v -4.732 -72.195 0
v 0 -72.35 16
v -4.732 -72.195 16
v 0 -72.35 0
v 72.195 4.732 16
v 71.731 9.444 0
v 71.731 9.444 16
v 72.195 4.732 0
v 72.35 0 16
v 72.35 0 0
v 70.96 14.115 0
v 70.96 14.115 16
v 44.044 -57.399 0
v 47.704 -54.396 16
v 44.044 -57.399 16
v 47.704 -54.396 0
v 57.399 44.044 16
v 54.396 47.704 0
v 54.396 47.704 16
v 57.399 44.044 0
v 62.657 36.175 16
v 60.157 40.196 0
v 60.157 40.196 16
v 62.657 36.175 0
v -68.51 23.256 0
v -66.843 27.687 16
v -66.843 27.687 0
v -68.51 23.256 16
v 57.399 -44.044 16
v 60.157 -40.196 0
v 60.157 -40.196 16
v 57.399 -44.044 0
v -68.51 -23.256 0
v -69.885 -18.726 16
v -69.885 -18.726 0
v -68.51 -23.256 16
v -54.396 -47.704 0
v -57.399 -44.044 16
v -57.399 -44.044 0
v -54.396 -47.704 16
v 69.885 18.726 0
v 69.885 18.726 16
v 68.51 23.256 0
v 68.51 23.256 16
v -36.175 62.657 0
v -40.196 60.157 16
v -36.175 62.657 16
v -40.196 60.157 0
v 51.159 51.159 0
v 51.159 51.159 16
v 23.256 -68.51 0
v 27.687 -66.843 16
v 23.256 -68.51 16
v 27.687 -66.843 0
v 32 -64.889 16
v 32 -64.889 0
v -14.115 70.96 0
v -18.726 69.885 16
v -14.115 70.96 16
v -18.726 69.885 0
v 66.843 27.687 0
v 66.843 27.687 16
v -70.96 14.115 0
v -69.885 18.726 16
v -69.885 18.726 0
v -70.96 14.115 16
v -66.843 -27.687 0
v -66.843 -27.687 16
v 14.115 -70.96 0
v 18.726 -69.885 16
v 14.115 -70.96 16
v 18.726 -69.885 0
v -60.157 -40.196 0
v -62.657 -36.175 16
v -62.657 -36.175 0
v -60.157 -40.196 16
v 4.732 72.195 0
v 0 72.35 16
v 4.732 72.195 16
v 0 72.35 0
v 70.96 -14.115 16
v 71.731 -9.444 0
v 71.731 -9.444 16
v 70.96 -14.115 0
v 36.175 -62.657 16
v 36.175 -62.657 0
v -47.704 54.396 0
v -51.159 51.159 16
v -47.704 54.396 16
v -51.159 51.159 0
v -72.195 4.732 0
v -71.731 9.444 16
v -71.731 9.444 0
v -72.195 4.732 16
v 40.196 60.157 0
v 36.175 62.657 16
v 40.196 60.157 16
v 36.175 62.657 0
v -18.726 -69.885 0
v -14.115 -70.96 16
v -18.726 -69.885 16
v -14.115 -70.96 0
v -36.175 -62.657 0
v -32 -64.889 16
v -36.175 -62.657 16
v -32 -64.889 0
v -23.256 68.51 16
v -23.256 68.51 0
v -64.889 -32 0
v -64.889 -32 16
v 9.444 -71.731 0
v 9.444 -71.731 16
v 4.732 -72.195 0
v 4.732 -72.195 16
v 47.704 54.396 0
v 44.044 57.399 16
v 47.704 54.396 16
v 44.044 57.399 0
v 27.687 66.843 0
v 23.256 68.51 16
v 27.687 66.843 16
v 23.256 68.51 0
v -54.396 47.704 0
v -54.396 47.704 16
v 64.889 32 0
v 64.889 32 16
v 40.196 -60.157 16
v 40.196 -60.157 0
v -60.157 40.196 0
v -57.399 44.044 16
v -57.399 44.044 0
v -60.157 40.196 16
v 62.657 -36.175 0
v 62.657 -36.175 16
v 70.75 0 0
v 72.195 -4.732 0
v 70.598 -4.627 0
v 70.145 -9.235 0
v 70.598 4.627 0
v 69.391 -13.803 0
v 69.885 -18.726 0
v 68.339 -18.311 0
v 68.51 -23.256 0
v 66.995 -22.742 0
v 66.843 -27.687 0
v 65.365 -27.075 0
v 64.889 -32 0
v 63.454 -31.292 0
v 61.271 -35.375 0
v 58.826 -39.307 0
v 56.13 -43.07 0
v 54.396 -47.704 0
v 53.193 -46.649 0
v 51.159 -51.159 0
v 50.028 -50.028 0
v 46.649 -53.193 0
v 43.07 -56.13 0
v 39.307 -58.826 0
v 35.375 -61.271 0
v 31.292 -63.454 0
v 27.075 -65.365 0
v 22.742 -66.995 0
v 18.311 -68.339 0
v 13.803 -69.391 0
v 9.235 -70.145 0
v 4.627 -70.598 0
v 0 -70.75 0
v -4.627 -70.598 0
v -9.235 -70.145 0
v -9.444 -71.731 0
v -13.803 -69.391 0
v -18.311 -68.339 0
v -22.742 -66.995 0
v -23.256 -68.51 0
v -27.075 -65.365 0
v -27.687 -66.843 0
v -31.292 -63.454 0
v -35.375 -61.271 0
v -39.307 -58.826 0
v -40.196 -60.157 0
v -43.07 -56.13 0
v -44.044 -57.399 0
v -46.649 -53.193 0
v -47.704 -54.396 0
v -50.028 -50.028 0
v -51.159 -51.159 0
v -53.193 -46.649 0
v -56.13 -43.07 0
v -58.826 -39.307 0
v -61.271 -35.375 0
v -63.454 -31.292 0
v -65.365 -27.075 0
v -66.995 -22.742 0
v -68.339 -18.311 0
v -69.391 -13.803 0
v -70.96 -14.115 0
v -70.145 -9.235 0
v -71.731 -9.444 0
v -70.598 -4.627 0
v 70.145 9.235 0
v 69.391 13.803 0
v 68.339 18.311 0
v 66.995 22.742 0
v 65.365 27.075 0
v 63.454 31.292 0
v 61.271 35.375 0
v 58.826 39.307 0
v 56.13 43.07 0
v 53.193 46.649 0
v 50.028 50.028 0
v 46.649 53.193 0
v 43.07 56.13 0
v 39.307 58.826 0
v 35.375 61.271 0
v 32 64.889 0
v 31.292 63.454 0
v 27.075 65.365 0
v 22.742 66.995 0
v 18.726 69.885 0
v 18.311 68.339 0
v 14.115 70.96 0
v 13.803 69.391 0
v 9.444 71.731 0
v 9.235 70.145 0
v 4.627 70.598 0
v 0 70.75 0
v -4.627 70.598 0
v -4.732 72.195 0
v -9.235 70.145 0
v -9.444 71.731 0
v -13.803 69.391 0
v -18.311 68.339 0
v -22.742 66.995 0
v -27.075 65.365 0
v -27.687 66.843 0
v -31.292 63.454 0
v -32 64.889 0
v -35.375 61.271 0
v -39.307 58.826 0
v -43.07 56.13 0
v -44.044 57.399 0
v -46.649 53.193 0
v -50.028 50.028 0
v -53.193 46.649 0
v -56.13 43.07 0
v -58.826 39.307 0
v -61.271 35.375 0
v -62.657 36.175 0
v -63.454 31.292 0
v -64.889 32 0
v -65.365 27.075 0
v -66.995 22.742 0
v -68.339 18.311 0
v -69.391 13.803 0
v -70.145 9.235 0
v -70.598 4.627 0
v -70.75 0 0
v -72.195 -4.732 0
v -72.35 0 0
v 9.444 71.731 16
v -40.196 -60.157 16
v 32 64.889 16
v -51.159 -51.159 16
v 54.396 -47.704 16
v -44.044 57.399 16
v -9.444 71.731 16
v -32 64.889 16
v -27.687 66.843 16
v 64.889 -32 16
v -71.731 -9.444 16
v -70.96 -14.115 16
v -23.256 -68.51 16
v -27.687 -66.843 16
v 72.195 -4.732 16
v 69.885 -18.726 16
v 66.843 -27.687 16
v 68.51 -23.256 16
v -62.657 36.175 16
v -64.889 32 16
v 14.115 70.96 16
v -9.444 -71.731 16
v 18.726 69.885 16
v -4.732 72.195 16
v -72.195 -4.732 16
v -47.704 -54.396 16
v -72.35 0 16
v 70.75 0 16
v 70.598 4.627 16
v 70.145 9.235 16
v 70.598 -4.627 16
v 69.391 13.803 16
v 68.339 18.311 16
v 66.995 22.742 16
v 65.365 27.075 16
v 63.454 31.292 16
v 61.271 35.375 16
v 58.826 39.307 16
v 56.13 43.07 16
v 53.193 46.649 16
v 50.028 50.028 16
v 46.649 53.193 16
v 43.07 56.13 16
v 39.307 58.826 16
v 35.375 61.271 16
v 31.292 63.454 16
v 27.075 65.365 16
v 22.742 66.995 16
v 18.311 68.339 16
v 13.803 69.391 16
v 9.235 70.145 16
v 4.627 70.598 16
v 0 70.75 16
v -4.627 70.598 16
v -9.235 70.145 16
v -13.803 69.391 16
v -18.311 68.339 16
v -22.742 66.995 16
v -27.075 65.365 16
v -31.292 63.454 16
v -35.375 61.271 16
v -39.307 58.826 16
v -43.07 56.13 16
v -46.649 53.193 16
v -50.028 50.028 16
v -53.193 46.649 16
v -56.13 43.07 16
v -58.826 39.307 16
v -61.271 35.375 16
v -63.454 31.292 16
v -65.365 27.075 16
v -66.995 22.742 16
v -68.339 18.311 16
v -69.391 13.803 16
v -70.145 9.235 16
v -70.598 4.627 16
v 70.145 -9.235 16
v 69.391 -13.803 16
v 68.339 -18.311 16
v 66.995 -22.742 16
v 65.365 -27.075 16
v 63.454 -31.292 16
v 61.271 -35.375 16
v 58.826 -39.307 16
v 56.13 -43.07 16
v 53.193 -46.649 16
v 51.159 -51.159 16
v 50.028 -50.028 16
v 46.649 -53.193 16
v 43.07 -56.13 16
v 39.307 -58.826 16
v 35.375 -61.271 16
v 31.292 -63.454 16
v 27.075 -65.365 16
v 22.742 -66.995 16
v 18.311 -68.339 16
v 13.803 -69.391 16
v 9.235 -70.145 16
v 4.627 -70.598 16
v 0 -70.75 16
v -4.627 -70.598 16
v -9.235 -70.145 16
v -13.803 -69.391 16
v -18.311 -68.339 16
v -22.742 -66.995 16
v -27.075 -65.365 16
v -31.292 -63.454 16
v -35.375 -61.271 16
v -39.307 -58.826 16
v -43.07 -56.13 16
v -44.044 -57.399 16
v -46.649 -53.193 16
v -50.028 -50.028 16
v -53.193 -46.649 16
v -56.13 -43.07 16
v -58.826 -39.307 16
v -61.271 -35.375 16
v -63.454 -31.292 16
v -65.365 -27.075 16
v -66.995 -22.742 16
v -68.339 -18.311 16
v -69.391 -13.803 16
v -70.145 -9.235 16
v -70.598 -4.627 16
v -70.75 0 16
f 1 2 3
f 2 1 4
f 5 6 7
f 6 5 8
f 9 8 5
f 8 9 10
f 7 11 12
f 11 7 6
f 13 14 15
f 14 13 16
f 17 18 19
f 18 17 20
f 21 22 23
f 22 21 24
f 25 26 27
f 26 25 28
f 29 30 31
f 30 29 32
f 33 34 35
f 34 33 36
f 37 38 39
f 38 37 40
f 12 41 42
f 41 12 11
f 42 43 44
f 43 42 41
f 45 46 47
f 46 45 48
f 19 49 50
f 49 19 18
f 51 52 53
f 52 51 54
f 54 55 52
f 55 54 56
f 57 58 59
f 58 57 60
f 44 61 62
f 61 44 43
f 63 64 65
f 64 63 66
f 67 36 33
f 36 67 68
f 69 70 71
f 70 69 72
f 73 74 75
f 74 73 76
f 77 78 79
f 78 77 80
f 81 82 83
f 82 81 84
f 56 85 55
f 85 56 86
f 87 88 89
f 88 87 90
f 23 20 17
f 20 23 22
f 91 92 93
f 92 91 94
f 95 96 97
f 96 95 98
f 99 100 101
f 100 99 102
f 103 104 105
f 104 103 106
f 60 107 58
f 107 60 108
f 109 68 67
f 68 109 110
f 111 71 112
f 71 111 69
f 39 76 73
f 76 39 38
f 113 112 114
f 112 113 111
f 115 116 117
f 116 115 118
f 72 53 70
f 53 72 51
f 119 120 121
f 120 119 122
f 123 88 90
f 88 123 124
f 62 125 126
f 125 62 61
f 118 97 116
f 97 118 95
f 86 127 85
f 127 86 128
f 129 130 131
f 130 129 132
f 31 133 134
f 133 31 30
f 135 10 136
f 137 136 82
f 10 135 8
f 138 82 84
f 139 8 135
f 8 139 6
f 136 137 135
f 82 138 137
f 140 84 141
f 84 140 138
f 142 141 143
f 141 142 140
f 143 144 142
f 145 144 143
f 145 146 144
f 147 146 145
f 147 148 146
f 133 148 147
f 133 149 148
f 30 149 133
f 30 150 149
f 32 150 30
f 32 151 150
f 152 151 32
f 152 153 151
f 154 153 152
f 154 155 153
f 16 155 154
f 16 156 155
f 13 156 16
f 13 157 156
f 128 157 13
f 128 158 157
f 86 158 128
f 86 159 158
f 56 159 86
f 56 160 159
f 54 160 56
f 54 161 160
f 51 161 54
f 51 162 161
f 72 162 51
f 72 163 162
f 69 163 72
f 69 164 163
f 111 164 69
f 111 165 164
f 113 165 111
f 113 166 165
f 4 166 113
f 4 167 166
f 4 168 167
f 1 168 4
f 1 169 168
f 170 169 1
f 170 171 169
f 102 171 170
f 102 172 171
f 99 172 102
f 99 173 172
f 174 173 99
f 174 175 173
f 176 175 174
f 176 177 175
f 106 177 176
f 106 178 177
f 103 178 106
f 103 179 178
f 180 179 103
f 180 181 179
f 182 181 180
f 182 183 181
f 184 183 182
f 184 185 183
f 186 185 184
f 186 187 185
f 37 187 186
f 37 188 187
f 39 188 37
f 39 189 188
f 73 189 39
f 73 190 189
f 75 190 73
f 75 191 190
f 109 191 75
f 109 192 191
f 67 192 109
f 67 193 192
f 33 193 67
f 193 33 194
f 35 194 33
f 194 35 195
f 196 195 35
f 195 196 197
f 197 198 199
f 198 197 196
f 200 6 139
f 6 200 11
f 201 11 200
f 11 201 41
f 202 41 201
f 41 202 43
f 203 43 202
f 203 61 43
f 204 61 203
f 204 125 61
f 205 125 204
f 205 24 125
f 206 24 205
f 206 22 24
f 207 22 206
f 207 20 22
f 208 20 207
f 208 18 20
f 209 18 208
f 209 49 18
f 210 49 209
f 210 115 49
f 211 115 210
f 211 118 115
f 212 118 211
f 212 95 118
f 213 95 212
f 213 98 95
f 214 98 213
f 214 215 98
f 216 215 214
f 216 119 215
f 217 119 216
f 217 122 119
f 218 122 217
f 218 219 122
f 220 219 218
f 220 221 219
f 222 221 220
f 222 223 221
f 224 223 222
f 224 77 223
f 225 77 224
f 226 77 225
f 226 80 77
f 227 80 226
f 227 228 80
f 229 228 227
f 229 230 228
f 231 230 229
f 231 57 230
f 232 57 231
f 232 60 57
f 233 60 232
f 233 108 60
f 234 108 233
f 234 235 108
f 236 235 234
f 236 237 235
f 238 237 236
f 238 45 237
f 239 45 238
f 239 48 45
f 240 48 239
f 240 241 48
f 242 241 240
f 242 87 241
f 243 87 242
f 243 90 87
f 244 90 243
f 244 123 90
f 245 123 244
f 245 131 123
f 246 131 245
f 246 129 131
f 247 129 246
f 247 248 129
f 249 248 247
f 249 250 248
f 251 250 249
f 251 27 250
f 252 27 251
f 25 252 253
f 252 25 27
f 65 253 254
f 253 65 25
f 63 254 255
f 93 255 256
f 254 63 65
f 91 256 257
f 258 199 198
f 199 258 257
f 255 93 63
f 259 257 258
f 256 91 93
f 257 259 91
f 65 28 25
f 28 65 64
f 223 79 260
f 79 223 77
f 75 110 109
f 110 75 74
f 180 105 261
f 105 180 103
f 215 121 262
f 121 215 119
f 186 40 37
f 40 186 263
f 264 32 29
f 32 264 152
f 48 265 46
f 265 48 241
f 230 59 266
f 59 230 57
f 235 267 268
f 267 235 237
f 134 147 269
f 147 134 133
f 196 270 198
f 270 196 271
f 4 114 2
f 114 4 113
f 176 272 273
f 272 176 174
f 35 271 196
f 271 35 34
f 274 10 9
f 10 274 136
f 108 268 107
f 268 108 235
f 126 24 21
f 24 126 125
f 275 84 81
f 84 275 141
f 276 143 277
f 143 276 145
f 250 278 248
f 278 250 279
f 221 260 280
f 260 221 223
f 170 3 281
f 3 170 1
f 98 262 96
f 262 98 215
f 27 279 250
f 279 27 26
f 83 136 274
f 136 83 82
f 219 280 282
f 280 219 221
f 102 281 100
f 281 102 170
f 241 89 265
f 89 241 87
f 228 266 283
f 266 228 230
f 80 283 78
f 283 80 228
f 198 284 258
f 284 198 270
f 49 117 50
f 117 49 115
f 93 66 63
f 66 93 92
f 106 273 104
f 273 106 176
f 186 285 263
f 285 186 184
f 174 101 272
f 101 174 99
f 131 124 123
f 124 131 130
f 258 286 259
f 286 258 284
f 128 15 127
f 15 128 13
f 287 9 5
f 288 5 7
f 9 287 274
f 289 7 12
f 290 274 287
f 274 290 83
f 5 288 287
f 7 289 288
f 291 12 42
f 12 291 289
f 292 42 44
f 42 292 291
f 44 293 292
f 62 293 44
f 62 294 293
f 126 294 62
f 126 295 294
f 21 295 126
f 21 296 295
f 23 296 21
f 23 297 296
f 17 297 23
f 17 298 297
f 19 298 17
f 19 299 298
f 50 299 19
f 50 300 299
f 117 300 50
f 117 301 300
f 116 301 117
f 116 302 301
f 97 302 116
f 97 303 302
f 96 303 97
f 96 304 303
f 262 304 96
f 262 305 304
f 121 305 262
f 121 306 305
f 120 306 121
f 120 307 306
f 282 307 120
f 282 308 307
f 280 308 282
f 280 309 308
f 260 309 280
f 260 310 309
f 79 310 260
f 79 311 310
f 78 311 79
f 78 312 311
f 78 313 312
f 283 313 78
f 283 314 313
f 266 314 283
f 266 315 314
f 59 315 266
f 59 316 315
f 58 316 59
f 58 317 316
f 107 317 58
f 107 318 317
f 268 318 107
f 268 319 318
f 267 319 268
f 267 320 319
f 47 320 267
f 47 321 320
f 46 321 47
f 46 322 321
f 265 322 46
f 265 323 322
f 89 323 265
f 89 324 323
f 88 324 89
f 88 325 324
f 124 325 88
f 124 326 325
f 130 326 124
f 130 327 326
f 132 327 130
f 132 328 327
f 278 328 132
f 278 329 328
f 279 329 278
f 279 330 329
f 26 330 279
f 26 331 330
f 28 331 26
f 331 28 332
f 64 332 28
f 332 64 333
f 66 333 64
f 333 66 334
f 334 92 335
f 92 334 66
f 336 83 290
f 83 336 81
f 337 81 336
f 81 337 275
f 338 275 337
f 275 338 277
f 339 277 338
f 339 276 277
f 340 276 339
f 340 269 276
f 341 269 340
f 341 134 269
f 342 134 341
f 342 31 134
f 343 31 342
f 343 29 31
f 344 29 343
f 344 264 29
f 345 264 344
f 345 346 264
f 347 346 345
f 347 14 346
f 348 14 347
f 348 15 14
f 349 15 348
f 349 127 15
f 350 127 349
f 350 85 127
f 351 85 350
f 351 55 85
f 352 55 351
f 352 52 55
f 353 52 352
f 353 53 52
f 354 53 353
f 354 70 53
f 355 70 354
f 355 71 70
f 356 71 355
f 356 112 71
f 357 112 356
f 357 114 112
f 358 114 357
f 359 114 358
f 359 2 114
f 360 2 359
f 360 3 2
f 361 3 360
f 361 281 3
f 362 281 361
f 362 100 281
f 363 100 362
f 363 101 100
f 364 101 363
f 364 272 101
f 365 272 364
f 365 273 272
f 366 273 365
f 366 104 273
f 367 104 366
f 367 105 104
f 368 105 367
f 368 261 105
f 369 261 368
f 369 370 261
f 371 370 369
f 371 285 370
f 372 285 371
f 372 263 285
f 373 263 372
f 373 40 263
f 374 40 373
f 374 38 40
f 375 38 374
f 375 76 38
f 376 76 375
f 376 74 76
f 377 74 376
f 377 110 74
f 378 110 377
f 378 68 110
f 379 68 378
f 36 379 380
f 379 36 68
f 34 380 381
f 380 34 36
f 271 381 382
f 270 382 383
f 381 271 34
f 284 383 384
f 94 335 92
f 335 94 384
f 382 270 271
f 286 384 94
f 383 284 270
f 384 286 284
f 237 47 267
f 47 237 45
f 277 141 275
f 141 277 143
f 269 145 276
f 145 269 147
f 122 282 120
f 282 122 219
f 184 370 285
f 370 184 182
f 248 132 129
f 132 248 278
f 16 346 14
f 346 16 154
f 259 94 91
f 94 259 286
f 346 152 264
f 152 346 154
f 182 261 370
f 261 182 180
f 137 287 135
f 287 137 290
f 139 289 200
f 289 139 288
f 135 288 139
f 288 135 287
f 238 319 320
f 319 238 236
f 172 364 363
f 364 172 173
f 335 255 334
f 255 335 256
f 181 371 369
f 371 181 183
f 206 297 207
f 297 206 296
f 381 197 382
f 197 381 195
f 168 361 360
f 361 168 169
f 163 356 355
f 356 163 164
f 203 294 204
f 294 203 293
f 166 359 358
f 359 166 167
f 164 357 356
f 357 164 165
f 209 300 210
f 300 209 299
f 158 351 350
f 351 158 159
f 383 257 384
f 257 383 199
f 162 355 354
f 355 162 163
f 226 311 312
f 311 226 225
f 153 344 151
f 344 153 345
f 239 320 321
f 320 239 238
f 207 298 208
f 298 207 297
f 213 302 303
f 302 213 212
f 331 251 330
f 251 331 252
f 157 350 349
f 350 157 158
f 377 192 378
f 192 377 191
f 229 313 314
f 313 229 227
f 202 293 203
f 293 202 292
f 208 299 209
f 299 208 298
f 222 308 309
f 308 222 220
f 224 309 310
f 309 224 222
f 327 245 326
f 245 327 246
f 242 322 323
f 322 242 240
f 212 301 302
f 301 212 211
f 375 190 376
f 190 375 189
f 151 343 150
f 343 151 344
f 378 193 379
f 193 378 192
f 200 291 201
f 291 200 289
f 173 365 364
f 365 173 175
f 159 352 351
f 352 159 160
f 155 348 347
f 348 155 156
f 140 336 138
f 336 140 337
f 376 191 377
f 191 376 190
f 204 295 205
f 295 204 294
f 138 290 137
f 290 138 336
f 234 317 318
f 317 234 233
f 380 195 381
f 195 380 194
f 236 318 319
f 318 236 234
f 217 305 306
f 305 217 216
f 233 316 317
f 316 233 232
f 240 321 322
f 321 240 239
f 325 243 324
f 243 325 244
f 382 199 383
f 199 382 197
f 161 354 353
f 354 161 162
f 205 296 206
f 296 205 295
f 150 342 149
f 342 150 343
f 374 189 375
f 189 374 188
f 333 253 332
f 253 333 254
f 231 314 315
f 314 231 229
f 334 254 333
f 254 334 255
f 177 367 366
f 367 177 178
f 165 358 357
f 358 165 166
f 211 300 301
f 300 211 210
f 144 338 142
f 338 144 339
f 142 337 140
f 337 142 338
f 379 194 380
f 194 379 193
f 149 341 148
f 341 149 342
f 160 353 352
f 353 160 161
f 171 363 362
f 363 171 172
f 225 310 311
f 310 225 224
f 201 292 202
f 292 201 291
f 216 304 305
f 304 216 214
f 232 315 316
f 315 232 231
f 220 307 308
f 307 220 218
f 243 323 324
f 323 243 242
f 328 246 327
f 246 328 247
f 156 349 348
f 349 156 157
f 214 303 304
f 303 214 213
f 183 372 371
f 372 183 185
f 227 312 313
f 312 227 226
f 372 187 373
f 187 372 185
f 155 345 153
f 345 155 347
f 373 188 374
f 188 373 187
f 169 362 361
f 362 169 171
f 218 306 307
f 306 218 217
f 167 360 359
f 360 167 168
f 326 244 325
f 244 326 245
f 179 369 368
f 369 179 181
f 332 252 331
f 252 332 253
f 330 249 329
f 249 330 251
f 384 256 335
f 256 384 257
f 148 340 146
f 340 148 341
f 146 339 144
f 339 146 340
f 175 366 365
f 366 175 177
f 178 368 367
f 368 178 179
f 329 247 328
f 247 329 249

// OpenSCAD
// file: layout.scad
// GENERATED by cad/fit.py from cad/ordered_parts.toml and config.scad.
// Do not edit: change those and run  python3 cad/fit.py  (from sport_cam/).

base_d = 141;
base_h = 84;
window_z = 36.5;
shelf_z = 48.5;
shelf_r = 66.75;
gap_ang = 300;
gap_d = 22;
post_r = 63.5;
post_angs = [15, 100, 225];
window_ribs = [15, 35, 55, 75, 95, 115, 135, 155, 175, 195, 215, 235, 255, 275, 295, 315, 335, 355];
pi_holes = [[-36.525, -40.718], [13.704, -11.718], [-61.025, 1.718], [-10.796, 30.718]];
pi_hole_d = 2.9;
usbc_ang = 150;
usbc_z = 8.35;
usbc_w = 13.5;
usbc_h = 8;
jack_ang = 210;
jack_z = 9.5;
jack_d = 8.2;
switch_ang = 120;
switch_z = 11.5;
switch_cut_w = 19.2;
switch_cut_h = 13.2;
switch_panel_t = 2;
vents_low = [5, 25, 45, 65, 245, 305, 325, 345];
vent_low_z = 9;
vents_high = [5, 65, 85, 105, 165, 185, 205, 245, 265, 285, 345];
vent_high_z = 64.75;
lid_screw_angs = [45, 135, 225, 315];
lid_screw_z = 81;
lid_nut_recess = 0.7;
ptz_nut_af = 5.5;
ptz_slot_min = 30;
ptz_slot_max = 72;
risers = [];
insert_od = 12.7;
insert_l = 8;
bank_l = 150;
bank_w = 72;
bank_h = 30;
uwb_l = 40;
uwb_w = 25;
uwb_hole_dx = 32;
uwb_hole_dy = 17;
ula1_tangential = true;
mast_d = 12.7;
pod_inner_l = 138;
pod_inner_w = 27;
pod_inner_h = 25;
pod_ula1_x0 = 98;
pod_charge_slot = true;
usb_entry_ang = 25;
usb_entry_z = 71;
usb_entry_w = 18;
usb_entry_h = 10;
// file: config.scad
// SportCam — parametric dimensions (mm). Every part file includes this.
//
// Three kinds of number feed the CAD:
//   * design choices — wall thickness, clearances, the anchor baseline — set below;
//   * the sizes of the parts you buy — in ../../cad/ordered_parts.toml;
//   * the layout — where each board sits, which way the Pi faces, how big
//     the enclosure is — which ../../cad/fit.py solves from the other two
//     and writes to layout.scad (included half-way down).
// After changing either file run   python3 cad/fit.py   from sport_cam/.
// It re-solves the layout, re-renders the STLs and audits that every part
// fits together and prints on a Bambu Lab A1 Mini (cad/FIT_REPORT.md).
//
// Keep the numbers above the include plain numbers (fit.py reads them);
// anything worked out from the layout goes below it.
//
// This is the **PTZ-base build**: the camera, pan and tilt all come from the
// Arducam IMX477 PTZ camera with metal pan-tilt base (B0167B12), which bolts
// to the lid of a static enclosure — see docs/design/03-mechanical-design.md.

$fn = 96;
clr = 0.25;                    // general printed-fit clearance per side

// ---- enclosure -------------------------------------------------------------
// Bottom to top: the power boards stuck to the floor; the LED ring under a
// printed shelf, shining out through the LED window; the Raspberry Pi on the
// shelf; the lid with the camera. Every part must print in one piece on a
// Bambu Lab A1 Mini (≤ 170 mm on every axis); fit.py keeps it that way.
base_d_min    = 135;           // narrowest enclosure (outer Ø); fit.py widens it only if the parts need it
base_h_min    = 66;            // lowest floor-to-lid height; fit.py raises it to clear the stack
base_wall     = 3;
lid_t         = 5;             // lid is structural: it carries the whole camera
spigot_h      = 6;             // locating ring under the lid that drops into the mouth
spigot_w      = 3;
lid_screw_pad = 7;             // the ring is thickened here for the four radial M3 inserts
lid_screw_d   = 3.4;
led_window_h  = 12;            // circumferential window the LED ring lights
window_bridge = 22;            // longest unsupported span over the window; ribs every this far
window_rib_w  = 3;
diffuser_t    = 1.6;           // translucent band slid over the outside of the window
diffuser_lip  = 2;             // how far it overlaps the wall above and below
ledge_h       = 2;             // the band rests on this outside ledge

tripod_boss_d = 24;            // floor boss for the 3/8-16 insert (bore from ordered_parts.toml)
tripod_boss_h = 8;

tape_t        = 1;             // foam tape under the power boards and the LED ring
part_gap      = 2;             // clearance fit.py keeps between parts
wall_gap      = 1;             // and between a part and the wall
shelf_t       = 3;             // the Pi shelf
post_d        = 10;            // shelf posts, merged into the wall; M3 insert in each top
post_insert_d = 4.0;
vent_w        = 4;
vent_h        = 8;
ribbon_slack_h = 8;            // clear height kept under the lid opening for the coiled camera ribbon

// ---- Arducam pan-tilt base interface ---------------------------------------
// Arducam publishes no drawing for the B0167B12 metal base and the footprint
// has changed between revisions, so the lid is cut with radial SLOTS spanning
// this range. Your base's spacing goes in ordered_parts.toml [ptz]; the audit
// checks it lands inside.
ptz_bolt_min  = 30;
ptz_bolt_max  = 72;
ptz_slot_w    = 3.4;           // M3 clearance
ptz_cable_d   = 34;            // central opening: CSI ribbon + servo leads drop through

// ---- UWB anchor arms (static) ----------------------------------------------
// The anchors don't rotate with the camera, so the arms bolt to the enclosure
// wall. Board centres land `uwb_half_base` either side of the pan axis; the
// tracker subtracts the commanded pan angle (docs/04).
uwb_half_base = 125;           // half the baseline → 250 mm anchor separation
arm_w = 18; arm_t = 8;
arm_root_h = 24;               // bracket height where the arm meets the wall
arm_boss_z = 10;               // bottom of the wall bosses
arm_insert_d = 4.0;            // M3 heat-set inserts in the bosses
ula1_standoff_h = 3;

// ---- third anchor mast (A3) ------------------------------------------------
// A3 gives elevation, which the horizontal A1-A2 bar cannot. It stands on a
// bought ½-inch hardwood dowel held in a printed foot on a third wall boss at
// −X — directly behind the lens, where pan (±80°) never points it — with a
// printed cradle carrying the board at the top. Wood, not metal: a metal
// tube right under a UWB antenna detunes it.
anchor_board_z = 22;           // A1/A2 board height above the enclosure floor
uwb_v_base  = 250;             // A3 board this far above A1/A2 (= σφ baseline)
mast_wall   = 4;               // socket wall
mast_floor  = 2;               // closed socket bottom; sets the dowel's height
mast_foot_h = 44;              // foot socket depth: long, so the mast stands still
mast_cap_h  = 30;              // cradle socket depth

// ---- battery tray ----------------------------------------------------------
// Sized to the power bank in ordered_parts.toml. Straps to a tripod leg or
// centre column, or sandwiches under the enclosure on a long 1/4-20.
tray_wall = 2.4;
tray_lip = 10;                 // how far the side walls come up the bank
tray_strap_w = 26;             // hook-and-loop strap slots

// ---- wearable pod ----------------------------------------------------------
// The tag is a ULA1 plugged straight into a slim USB bank, end to end; fit.py
// sizes the pod from both (ordered_parts.toml).
pod_wall = 2.0;
strap_w = 26;                  // elastic armband width
pod_max_l = 150;               // longest pod that's still comfortable on an arm

// ---- solved layout ---------------------------------------------------------
include <layout.scad>          // GENERATED by cad/fit.py — bought-part sizes + layout

R_in = base_d / 2 - base_wall; // inside of the wall
tripod_hole_d = insert_od;     // the 3/8-16 insert, epoxied: a snug slip fit

arm_boss_r = base_d / 2 + 4;   // outer face of the wall boss the arm bolts to
arm_len = uwb_half_base - arm_boss_r;             // boss face to board centre

// ULA1 pad. fit.py turns the boards across the arms (plug towards −X) when
// the extension cable's socket end has no room between the plug and the
// enclosure; the pad and holes follow.
pad_along   = ula1_tangential ? uwb_w + 12 : uwb_l + 12;
pad_across  = ula1_tangential ? uwb_l : uwb_w;
hole_along  = ula1_tangential ? uwb_hole_dy : uwb_hole_dx;
hole_across = ula1_tangential ? uwb_hole_dx : uwb_hole_dy;

mast_bore   = mast_d + 2 * clr;
mast_sock_r = mast_bore / 2 + mast_wall;
// mast axis from the pan axis: boss face, 6 mm root plate, socket, 2 mm overlap.
// fit.py keeps device/sportcam/config.py UWB_A3_BACK_M in step.
mast_axis_r = arm_boss_r + 6 + mast_sock_r - 2;
// The cradle puts the board mast_floor + arm_t + 4 above the dowel top
// (socket floor, pad, standoffs), and the foot's floor sits on the boss at
// z = arm_boss_z, so cut the dowel to this:
cradle_rise  = mast_floor + arm_t + 4;
mast_dowel_l = anchor_board_z + uwb_v_base - cradle_rise - (arm_boss_z + mast_floor);
// main file
// Translucent band over the enclosure's LED window. It slides down over the
// outside of the enclosure (lid off) and rests on the small ledge below the
// window, overlapping the wall above and below by diffuser_lip; a few dabs of
// glue hold it. The LED ring inside lights it from behind.
//
// Print in white or natural PETG, 2 perimeters, 0 % infill, no top/bottom.
include <config.scad>

module led_diffuser_ring() {
    id = base_d + 2 * clr;
    difference() {
        cylinder(d = id + 2 * diffuser_t, h = led_window_h + 2 * diffuser_lip);
        translate([0, 0, -1]) cylinder(d = id, h = led_window_h + 2 * diffuser_lip + 2);
    }
}

led_diffuser_ring();
